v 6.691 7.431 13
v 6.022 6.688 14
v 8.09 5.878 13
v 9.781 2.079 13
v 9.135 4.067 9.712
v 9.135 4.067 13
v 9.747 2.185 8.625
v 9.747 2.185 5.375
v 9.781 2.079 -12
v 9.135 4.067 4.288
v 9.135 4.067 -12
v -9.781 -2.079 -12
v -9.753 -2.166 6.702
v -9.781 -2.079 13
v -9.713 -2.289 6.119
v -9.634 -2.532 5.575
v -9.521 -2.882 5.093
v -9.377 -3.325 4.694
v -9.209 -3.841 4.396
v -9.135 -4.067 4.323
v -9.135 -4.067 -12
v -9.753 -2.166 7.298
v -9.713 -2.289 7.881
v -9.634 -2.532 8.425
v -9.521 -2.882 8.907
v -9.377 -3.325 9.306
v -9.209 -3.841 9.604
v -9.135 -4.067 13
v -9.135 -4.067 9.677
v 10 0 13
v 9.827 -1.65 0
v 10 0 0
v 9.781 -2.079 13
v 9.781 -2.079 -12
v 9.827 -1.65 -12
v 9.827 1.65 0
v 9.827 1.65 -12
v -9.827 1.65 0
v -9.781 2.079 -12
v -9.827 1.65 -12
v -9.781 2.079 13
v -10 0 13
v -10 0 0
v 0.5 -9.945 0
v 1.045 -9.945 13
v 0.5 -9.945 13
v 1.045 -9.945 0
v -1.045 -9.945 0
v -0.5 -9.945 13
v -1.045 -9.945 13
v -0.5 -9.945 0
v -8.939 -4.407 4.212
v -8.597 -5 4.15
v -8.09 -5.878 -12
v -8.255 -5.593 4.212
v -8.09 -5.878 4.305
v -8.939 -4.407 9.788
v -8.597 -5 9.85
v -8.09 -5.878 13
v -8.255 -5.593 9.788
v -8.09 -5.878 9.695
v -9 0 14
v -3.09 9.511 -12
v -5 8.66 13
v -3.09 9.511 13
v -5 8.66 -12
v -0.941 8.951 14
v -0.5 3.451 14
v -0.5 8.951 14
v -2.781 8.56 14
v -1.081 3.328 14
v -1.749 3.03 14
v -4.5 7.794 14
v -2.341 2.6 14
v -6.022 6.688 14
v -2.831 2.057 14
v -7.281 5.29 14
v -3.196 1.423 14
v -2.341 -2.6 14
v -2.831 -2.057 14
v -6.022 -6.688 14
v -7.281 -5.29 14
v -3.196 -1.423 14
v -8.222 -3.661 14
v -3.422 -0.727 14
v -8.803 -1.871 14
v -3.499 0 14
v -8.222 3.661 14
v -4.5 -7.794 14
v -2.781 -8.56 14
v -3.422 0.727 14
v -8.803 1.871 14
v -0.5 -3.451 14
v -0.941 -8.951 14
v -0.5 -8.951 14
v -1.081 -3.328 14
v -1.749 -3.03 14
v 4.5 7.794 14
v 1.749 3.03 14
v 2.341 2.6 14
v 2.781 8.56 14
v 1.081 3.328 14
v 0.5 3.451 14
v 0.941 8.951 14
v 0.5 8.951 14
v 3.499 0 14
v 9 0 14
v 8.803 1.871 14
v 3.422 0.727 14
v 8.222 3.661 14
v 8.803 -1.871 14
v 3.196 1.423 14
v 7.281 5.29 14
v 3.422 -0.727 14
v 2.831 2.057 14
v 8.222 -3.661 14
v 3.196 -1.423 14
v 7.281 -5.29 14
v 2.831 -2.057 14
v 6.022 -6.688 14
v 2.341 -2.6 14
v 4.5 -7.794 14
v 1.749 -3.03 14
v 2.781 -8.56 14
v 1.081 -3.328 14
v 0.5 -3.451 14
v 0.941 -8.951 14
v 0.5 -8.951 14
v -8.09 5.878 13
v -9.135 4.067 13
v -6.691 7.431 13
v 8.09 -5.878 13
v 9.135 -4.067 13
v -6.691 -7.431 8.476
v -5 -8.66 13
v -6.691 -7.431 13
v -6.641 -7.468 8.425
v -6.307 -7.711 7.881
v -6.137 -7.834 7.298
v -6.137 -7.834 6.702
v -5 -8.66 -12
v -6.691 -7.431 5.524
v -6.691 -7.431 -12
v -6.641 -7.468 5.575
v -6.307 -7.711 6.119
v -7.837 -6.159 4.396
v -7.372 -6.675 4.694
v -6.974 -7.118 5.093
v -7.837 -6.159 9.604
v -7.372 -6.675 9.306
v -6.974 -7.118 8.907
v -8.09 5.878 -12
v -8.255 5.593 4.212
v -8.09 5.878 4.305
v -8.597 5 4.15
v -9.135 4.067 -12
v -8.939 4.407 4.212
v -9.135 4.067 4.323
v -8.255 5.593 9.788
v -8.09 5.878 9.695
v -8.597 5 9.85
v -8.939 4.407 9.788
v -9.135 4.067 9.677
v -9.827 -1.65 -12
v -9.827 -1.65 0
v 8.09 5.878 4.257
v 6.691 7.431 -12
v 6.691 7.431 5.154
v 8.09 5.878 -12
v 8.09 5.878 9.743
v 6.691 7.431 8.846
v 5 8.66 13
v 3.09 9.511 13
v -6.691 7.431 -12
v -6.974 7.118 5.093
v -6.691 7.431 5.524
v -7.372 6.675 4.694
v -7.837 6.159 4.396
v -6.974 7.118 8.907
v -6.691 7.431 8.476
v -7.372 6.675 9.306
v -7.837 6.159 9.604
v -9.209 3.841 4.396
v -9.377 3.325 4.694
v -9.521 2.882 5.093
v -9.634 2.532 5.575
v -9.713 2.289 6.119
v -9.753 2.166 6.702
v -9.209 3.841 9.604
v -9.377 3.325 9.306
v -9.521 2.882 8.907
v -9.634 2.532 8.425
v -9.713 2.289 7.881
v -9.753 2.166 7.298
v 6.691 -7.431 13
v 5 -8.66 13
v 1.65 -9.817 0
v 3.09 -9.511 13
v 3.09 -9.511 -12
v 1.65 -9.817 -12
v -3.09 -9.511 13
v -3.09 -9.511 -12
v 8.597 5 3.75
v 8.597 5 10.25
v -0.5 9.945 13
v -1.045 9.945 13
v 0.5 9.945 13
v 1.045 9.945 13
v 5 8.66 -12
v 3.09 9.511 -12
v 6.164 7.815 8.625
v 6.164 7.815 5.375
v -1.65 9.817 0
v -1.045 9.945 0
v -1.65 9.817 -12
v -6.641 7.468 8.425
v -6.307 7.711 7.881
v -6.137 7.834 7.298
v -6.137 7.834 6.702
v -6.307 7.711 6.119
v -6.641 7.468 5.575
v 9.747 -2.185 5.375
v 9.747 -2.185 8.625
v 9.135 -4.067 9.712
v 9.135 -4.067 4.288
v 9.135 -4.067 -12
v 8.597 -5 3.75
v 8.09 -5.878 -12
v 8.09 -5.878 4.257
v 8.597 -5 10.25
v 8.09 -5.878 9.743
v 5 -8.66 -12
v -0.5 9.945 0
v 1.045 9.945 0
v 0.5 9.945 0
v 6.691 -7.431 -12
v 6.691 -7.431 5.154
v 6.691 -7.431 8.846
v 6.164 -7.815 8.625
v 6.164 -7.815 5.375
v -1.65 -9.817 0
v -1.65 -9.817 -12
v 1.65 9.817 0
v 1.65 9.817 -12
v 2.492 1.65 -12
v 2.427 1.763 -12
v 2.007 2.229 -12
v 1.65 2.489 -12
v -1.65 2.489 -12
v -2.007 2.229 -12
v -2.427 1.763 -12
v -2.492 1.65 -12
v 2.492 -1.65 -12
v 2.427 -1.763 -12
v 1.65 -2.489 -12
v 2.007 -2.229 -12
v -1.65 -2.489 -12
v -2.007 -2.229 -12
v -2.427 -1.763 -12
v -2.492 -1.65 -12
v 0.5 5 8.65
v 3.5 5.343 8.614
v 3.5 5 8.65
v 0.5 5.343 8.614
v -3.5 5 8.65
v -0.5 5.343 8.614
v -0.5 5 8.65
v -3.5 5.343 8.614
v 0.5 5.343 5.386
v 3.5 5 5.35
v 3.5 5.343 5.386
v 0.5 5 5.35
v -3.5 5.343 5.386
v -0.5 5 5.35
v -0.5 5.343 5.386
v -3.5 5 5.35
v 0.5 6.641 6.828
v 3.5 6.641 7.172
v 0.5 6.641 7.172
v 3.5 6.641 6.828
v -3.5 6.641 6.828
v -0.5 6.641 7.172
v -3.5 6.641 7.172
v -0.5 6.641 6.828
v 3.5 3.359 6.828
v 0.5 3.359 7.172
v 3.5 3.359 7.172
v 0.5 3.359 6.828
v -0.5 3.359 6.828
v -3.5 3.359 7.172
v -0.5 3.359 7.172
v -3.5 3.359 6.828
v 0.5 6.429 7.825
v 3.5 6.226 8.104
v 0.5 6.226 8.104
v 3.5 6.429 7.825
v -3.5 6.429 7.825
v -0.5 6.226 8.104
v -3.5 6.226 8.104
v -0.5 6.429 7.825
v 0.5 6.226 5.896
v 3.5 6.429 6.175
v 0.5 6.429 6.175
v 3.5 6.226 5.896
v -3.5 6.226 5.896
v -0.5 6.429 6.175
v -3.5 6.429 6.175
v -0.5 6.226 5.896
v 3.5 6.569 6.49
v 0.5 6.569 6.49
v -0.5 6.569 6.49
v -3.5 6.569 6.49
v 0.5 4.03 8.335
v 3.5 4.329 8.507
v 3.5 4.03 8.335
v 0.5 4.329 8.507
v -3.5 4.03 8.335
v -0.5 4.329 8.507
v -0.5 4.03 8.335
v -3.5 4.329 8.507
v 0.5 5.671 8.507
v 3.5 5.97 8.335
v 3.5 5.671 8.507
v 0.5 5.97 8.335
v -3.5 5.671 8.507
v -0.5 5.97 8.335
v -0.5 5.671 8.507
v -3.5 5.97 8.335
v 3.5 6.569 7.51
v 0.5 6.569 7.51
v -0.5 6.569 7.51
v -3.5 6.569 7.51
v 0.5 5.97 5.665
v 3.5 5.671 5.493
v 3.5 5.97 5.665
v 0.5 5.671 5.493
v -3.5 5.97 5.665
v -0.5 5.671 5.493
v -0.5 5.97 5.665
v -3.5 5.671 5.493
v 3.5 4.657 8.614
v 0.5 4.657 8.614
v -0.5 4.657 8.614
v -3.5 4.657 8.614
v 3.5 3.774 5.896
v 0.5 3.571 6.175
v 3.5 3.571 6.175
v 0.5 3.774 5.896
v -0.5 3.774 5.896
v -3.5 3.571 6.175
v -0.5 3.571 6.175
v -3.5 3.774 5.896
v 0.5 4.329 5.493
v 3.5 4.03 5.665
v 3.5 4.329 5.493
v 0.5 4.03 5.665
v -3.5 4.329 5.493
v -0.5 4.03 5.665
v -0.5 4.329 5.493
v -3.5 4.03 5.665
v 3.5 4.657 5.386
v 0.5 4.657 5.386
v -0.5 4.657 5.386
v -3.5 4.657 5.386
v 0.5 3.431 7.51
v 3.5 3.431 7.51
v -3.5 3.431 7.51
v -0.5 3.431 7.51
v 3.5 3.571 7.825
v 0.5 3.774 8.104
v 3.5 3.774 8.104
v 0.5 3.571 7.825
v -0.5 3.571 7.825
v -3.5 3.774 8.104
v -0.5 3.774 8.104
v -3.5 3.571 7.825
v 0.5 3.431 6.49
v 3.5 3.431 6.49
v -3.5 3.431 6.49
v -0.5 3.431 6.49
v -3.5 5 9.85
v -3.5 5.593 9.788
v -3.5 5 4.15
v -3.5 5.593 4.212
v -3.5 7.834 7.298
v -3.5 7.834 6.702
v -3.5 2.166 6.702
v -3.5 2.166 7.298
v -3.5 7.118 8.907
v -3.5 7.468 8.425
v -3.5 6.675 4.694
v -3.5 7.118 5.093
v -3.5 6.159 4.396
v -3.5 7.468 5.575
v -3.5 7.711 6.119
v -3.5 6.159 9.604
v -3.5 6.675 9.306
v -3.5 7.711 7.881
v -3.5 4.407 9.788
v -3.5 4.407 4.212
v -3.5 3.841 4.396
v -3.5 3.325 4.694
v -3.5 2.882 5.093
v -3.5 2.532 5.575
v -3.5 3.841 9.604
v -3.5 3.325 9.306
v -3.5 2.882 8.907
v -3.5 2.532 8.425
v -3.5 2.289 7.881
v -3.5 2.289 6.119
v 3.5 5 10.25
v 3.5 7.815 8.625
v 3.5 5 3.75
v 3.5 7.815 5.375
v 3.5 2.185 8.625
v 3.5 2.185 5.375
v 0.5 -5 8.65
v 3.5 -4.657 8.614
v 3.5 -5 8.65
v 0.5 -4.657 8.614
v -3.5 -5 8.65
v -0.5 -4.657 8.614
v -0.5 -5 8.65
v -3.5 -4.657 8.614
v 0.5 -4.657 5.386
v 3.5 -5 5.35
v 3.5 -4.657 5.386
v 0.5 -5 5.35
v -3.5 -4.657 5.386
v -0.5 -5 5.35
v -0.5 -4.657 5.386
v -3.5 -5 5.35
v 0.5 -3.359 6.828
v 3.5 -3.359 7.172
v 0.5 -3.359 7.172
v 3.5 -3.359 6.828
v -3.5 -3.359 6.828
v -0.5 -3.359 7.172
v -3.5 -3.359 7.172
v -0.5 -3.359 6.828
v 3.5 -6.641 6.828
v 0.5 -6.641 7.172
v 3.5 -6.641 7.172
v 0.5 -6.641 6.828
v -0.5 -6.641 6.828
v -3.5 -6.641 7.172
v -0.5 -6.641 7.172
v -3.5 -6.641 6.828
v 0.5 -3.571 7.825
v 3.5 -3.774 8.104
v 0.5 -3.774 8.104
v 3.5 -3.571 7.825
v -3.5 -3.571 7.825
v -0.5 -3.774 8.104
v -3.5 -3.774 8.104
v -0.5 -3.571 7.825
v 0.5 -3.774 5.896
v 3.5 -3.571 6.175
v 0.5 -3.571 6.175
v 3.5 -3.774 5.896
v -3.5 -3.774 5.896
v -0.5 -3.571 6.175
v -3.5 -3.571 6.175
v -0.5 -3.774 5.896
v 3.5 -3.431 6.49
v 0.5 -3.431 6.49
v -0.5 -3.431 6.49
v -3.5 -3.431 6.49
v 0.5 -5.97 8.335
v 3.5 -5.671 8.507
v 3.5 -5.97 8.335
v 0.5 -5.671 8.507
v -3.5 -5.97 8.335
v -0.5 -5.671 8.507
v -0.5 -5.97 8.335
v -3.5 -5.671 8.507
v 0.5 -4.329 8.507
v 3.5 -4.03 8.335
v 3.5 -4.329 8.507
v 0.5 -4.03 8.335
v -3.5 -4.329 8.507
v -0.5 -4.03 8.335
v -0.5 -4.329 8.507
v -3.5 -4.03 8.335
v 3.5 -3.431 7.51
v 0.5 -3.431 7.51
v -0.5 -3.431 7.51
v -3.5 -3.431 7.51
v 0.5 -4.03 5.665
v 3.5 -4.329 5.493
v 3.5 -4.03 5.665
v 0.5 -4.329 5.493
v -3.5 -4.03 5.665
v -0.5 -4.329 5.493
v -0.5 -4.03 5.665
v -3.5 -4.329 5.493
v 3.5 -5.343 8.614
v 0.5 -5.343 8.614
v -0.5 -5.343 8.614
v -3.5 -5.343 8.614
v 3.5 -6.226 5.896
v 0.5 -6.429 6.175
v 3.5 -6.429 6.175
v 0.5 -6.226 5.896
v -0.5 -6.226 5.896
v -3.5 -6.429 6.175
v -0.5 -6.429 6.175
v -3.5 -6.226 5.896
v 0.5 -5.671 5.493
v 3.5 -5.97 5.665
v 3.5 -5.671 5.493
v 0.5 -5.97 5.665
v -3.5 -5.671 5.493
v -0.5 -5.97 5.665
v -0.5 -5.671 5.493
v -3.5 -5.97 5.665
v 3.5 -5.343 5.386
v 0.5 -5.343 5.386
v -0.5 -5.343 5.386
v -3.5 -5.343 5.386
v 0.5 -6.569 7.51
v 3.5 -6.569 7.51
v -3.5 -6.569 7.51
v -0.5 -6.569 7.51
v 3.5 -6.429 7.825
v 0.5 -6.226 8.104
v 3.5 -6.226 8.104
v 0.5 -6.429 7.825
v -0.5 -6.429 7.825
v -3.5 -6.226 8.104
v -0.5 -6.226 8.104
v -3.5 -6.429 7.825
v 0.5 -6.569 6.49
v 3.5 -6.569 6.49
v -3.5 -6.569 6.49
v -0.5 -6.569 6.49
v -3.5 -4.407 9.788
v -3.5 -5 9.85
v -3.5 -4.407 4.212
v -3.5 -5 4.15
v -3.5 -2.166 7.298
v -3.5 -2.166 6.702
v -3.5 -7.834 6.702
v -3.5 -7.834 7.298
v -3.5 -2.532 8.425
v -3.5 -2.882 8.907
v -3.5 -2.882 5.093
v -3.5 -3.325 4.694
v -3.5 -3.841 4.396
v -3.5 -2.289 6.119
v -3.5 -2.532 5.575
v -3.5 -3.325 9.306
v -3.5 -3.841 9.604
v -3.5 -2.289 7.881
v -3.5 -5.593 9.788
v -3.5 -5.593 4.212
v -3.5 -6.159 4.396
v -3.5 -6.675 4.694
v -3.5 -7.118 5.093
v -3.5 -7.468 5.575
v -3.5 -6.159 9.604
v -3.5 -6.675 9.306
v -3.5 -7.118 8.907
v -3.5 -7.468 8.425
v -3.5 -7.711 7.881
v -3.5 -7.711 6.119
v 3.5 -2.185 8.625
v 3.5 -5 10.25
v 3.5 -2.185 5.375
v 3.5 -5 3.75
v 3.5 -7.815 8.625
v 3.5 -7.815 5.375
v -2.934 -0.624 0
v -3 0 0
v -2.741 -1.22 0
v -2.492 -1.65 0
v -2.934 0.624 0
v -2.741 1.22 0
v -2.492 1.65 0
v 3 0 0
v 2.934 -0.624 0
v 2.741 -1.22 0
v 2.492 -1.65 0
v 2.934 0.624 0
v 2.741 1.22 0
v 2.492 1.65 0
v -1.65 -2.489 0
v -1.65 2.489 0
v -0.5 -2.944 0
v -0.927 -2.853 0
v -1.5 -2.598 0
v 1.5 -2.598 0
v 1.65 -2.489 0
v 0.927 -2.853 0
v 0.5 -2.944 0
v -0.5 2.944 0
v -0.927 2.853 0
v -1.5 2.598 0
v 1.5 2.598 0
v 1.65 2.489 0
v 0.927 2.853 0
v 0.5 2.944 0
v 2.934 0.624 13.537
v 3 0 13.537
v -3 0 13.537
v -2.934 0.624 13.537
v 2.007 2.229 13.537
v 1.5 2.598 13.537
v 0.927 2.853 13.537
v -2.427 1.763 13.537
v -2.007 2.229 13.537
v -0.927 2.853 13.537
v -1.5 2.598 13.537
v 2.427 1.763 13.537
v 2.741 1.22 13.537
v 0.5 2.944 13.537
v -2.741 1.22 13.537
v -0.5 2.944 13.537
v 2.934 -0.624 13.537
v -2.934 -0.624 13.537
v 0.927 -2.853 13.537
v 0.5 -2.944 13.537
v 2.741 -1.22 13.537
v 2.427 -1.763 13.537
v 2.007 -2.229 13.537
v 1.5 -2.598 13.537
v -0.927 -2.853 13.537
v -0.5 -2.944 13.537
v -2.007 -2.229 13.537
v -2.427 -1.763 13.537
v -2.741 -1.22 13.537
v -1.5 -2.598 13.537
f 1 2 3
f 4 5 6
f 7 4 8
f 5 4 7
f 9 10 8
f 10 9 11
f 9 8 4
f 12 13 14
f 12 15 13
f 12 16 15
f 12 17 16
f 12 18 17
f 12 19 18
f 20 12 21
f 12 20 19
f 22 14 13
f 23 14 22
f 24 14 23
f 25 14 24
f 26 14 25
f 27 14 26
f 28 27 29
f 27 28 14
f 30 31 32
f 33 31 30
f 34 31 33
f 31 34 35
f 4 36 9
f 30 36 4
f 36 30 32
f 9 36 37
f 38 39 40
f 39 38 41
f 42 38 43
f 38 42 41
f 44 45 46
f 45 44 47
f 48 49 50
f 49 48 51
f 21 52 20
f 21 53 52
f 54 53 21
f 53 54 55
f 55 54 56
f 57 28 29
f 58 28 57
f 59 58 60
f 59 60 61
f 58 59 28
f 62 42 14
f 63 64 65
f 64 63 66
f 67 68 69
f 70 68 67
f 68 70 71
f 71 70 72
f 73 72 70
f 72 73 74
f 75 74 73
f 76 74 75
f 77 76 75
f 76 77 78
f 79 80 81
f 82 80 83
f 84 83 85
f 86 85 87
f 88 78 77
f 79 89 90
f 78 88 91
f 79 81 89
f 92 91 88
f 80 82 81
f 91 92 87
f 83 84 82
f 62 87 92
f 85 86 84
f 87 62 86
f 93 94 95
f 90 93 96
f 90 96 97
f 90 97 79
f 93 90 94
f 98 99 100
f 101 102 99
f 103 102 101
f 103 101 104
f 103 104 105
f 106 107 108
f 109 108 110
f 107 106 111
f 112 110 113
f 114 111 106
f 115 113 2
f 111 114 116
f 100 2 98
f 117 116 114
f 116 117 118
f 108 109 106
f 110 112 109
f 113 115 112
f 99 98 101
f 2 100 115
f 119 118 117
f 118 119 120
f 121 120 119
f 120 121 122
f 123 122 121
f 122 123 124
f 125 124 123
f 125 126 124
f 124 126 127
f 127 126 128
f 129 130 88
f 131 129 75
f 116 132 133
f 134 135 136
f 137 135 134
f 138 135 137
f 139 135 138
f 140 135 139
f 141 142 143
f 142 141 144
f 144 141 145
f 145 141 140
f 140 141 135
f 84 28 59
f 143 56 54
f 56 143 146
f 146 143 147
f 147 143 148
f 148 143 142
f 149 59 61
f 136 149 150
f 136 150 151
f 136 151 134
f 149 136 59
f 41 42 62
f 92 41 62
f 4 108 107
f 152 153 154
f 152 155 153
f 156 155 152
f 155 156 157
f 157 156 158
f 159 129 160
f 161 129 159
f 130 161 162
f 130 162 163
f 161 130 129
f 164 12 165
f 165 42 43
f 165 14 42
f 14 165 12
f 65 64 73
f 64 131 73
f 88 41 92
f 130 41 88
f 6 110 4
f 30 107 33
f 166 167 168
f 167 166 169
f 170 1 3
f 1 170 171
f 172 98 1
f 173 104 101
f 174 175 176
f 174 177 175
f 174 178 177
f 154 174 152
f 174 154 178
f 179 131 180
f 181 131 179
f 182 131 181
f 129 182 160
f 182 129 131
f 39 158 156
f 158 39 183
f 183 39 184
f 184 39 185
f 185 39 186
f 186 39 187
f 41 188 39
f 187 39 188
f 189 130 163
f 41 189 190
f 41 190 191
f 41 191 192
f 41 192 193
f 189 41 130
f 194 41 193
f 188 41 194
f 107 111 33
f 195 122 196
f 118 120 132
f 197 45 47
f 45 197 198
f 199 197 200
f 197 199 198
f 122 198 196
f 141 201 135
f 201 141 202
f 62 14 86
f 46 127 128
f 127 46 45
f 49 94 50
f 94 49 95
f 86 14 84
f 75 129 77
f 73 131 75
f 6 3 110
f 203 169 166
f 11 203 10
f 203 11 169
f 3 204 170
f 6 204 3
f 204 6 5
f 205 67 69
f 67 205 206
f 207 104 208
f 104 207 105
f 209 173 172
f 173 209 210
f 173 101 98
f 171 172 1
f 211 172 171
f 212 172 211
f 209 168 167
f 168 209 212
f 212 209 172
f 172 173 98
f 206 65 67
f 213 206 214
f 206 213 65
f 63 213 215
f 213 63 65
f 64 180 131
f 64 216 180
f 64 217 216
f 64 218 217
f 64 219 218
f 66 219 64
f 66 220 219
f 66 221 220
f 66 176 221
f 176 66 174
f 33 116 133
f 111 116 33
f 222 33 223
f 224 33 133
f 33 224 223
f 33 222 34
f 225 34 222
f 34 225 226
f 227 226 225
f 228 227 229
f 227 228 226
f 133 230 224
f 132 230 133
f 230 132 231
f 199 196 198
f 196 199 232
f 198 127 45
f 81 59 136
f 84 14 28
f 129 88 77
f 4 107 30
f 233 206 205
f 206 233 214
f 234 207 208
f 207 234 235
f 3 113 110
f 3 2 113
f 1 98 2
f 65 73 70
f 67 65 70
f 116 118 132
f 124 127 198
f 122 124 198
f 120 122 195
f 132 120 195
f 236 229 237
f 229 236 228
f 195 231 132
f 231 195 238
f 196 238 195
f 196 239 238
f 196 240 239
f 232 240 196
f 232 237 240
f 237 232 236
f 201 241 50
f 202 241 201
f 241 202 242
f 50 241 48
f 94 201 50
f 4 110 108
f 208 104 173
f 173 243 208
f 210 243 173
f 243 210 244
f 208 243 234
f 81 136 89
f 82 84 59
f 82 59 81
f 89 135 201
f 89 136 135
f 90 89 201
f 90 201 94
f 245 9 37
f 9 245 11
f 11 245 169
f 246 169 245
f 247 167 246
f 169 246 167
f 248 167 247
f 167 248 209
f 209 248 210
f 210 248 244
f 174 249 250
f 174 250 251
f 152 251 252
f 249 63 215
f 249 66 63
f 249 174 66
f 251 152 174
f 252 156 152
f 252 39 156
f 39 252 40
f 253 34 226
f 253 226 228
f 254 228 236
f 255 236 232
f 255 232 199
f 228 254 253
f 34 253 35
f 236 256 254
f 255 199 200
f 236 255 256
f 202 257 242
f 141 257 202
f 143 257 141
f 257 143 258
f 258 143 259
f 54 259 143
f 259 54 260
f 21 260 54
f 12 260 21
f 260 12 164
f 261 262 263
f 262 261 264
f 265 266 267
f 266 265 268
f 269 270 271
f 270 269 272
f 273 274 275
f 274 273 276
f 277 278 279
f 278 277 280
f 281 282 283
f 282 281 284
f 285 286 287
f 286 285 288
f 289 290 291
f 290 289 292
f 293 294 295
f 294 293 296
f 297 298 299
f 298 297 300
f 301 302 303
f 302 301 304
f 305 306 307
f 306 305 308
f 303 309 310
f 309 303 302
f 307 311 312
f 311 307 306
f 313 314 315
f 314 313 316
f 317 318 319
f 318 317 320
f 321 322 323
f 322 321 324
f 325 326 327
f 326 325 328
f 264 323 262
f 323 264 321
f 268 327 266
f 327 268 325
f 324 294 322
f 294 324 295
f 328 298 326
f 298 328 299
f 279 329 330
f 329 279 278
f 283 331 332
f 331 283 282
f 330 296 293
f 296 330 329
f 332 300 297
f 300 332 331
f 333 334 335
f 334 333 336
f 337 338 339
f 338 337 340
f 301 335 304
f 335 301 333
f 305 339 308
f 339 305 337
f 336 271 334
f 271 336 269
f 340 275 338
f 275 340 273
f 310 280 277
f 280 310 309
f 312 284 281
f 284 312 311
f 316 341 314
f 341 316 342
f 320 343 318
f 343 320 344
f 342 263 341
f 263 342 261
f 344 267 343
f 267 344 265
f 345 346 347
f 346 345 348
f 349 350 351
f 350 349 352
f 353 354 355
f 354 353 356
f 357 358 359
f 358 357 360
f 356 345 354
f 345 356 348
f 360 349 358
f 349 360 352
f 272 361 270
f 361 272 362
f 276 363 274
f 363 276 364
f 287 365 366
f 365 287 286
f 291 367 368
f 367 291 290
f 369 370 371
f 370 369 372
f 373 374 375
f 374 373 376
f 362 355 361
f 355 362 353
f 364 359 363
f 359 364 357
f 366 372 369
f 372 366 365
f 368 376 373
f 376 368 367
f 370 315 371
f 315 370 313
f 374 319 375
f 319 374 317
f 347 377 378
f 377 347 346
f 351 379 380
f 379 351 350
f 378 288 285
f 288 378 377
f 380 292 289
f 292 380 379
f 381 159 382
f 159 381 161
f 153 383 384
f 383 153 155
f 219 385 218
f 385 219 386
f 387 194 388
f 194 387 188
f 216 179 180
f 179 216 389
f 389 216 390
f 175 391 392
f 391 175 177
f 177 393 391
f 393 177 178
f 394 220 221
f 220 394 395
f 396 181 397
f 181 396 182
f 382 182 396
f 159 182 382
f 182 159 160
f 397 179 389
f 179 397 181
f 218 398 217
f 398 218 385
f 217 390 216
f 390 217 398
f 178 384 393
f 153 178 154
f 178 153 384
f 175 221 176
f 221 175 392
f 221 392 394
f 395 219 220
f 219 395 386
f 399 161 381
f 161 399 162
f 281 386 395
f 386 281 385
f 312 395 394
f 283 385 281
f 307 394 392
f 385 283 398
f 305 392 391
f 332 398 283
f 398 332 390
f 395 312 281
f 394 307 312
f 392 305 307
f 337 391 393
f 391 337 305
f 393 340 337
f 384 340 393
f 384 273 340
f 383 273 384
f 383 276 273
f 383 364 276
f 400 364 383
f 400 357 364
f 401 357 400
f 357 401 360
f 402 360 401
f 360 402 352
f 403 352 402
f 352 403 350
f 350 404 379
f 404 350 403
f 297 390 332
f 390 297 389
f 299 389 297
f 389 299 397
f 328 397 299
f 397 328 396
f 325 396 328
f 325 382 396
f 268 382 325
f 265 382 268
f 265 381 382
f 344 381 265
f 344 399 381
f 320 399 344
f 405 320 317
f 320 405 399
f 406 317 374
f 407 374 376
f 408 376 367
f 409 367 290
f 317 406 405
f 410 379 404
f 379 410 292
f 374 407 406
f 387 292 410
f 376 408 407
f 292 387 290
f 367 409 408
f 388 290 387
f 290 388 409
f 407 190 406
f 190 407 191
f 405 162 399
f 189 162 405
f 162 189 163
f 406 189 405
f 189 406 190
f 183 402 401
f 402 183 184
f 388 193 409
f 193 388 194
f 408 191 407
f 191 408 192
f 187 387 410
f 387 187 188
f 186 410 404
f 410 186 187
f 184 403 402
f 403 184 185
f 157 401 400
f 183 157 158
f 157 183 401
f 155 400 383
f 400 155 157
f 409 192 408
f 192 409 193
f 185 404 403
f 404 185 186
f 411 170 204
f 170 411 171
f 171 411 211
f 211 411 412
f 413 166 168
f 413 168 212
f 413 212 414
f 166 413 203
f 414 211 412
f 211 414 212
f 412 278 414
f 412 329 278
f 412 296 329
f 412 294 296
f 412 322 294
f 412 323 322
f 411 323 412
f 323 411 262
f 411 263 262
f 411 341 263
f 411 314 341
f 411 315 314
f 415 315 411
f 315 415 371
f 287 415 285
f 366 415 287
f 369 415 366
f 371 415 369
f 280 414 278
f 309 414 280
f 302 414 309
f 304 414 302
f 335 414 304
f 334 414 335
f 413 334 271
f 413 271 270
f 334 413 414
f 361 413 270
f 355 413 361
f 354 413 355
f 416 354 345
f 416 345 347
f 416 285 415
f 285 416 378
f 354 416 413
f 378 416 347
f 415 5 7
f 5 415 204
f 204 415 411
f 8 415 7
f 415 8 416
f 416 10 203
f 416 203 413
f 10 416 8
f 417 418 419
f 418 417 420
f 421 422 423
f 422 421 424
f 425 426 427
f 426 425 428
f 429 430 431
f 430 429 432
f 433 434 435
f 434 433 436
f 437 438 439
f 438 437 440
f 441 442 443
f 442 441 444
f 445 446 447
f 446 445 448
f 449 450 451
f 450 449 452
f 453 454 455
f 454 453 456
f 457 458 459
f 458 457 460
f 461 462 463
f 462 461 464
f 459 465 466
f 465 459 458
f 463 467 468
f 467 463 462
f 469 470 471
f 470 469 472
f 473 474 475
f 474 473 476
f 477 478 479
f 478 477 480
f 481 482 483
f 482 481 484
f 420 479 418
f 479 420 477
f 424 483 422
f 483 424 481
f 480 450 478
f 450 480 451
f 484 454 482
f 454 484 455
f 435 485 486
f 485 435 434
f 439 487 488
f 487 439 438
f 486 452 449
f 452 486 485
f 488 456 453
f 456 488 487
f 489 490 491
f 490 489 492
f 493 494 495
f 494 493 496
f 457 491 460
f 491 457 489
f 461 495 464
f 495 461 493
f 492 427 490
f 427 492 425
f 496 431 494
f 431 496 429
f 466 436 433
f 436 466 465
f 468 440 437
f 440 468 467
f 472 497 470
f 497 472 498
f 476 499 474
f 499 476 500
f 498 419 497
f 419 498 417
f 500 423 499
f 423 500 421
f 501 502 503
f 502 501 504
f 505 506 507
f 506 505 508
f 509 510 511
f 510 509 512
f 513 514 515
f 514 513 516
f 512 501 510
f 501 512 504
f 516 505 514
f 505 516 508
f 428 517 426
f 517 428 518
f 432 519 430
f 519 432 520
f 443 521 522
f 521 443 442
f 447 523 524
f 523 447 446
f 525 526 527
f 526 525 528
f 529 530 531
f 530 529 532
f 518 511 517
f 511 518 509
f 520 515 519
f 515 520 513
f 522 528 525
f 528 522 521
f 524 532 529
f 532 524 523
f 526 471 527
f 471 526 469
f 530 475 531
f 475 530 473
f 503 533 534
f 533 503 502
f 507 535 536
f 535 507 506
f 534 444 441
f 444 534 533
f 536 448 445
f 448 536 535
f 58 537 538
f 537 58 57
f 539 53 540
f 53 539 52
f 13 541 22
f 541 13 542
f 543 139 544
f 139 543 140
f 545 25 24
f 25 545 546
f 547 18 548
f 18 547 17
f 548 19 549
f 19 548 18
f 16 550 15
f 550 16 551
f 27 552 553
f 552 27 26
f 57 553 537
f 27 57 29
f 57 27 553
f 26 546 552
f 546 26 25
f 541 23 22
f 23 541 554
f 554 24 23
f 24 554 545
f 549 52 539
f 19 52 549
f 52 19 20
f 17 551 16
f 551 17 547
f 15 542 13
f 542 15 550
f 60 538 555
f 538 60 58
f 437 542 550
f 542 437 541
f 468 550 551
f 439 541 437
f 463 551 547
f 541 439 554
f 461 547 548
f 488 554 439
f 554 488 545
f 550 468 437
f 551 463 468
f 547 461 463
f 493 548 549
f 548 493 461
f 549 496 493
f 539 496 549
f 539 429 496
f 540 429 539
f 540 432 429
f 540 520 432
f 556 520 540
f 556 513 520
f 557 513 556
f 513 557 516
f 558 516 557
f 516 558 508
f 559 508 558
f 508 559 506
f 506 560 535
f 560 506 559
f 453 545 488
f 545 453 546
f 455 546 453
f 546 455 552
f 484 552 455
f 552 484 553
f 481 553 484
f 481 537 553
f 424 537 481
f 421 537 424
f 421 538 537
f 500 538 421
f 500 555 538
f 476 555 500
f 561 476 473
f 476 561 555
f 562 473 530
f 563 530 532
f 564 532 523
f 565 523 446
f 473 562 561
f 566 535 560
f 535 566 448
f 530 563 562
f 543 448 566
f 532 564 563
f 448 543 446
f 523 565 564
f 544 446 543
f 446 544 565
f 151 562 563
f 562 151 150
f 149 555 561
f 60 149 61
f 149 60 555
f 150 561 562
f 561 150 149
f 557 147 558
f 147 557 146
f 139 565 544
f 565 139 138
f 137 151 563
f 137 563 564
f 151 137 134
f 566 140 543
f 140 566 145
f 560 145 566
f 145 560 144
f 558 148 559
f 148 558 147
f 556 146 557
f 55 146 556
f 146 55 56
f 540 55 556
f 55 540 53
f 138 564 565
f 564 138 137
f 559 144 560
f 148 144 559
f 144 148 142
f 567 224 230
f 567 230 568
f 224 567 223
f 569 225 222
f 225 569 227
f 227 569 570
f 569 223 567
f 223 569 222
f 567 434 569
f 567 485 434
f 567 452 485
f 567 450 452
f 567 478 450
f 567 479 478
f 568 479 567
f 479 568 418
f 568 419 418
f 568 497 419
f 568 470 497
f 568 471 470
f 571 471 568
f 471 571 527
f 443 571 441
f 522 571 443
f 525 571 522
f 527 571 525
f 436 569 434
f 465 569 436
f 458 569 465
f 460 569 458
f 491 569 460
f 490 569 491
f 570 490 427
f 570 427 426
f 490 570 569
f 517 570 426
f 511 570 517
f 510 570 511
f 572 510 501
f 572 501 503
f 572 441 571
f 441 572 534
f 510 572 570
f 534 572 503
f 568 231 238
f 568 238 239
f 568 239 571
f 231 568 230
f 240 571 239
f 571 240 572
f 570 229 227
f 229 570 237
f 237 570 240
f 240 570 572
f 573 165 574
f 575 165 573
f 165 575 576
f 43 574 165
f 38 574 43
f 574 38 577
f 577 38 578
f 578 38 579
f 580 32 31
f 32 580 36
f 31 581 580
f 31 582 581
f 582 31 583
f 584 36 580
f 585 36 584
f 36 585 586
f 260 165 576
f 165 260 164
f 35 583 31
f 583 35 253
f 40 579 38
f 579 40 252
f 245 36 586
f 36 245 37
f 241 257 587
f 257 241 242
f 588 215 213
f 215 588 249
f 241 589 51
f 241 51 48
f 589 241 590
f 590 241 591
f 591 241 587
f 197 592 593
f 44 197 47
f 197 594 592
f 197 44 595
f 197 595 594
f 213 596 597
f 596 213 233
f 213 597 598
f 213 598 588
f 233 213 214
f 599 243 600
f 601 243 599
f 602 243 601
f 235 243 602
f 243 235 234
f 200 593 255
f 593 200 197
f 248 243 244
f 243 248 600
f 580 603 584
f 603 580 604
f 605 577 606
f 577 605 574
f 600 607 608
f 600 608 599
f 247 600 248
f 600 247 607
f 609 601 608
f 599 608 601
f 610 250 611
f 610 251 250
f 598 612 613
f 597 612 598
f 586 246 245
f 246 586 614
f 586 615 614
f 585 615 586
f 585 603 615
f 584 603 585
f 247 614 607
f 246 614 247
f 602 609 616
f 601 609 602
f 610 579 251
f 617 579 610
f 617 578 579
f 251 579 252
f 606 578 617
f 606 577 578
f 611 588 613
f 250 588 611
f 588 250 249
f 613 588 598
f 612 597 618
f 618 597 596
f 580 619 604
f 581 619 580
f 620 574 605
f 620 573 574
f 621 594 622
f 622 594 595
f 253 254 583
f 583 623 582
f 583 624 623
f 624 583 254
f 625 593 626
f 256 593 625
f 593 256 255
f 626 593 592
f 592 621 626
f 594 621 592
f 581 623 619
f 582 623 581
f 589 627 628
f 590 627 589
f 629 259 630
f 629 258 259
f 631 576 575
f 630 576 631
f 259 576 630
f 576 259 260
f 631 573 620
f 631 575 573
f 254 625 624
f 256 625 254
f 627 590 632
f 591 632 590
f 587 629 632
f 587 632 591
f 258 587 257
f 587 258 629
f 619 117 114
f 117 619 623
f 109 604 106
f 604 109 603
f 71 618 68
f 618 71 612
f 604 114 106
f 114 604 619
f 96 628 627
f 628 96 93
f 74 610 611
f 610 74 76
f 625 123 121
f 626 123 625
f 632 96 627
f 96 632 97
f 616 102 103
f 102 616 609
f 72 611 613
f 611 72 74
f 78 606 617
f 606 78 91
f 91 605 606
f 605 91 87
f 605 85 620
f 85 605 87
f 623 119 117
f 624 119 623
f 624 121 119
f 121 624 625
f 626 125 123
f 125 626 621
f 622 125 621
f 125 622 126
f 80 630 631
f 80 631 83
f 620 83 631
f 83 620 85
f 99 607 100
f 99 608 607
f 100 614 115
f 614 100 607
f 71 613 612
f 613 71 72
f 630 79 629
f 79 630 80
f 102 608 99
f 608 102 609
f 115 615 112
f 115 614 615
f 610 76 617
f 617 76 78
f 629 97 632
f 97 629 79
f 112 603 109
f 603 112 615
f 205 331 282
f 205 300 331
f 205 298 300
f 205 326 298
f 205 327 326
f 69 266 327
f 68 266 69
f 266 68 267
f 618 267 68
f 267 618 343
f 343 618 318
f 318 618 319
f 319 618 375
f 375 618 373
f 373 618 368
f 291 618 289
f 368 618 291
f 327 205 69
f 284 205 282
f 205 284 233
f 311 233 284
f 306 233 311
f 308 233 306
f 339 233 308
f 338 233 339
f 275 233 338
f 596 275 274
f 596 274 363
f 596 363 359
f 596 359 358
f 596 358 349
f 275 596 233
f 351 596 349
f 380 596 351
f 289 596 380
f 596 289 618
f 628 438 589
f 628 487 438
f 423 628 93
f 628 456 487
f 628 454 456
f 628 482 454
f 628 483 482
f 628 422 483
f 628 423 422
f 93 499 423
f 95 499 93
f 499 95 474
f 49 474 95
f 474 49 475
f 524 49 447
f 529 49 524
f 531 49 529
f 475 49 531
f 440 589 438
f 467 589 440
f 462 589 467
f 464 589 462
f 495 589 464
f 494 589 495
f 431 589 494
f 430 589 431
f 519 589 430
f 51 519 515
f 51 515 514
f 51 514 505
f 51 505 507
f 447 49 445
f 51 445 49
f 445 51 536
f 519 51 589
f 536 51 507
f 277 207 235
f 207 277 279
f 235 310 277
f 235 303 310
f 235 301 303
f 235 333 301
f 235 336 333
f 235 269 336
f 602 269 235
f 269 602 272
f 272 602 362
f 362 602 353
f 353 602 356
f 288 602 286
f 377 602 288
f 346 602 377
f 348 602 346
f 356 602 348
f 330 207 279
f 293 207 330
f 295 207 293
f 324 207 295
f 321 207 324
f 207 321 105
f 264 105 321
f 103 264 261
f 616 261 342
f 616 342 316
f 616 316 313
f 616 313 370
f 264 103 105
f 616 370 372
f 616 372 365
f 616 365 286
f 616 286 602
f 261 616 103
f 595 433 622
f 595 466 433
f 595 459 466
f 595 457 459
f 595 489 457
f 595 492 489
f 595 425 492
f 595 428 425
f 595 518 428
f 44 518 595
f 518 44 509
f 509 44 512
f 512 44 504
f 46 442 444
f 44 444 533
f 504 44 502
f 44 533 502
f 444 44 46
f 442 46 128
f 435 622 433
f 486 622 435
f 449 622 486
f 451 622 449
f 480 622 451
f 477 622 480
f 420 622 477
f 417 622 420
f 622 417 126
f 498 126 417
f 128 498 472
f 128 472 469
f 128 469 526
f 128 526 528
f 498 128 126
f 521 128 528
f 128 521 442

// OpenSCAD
$fn=30;

// --- Motor end
// Inner diameter.
id1 = 20; 
// Length of hole for shaft 1.
h1 = 14;

// --- M4 threaded shart end
// Inner diameter of hole for shaft 2. This one fits the 
// M4 threded shaft.
id2 = 6;  
// Length of hole for shaft 2.

// --- Body Cylinder
od = 20;
body_offset_from_center = 0;
// Width of the slot along the coupler.
slot_angle = 12;
// Total coupler length;
total_height = h1;

// --- Clamping screws
// Diameter of the screw holes.
screw_hole_diameter = 3.3;
// Diamter of the inset for the screws head.
screw_head_diameter = 5.7;
// Diamter of the inset for the screws nuts.
screw_nut_diameter = 6.5;
// Distance between screw head and nut.
screw_head_to_nut = 7;
// Offset of the screws' centers from the coupler's center.
hole_offset_from_center = 5;
// Offset of the screws' centers from the coupler ends.
hole_offset_from_end = 7;

// Other
shaft_chamfer = 0.5;
body_chamfer = 1;

// Small measures, use to menatain manifold.
eps1 = 0.001;

// Chamfers for the top and bottom shaft holes.
module shafts_chamfers() {
  translate([0, 0, total_height-(id2+shaft_chamfer)/2+eps1]) 
      cylinder(d1=eps1, d2=id2+2*shaft_chamfer, h=(id2+shaft_chamfer)/2);
}

// The blank cylinder of the boddy. Includes top and bottom chamfers.
module body() {
  hull() {
    cylinder(d1=od, d2=od, h=body_chamfer);
    translate([0, 0, total_height-body_chamfer]) cylinder(d1=od, d2=od-2*body_chamfer, h=body_chamfer);
  }
}

// Cut for one screw, with its nut.
module screw(h) {
  translate([0, hole_offset_from_center, h])
  rotate([0, -90, 0])
  union() {
    translate([0, 0, -od/2]) cylinder(d=screw_hole_diameter, h=od); 
    translate([0, 0, screw_head_to_nut/2]) cylinder(d=screw_head_diameter, h=od/2);
    translate([0, 0, -(od + screw_head_to_nut)/2]) cylinder($fn=6, d=screw_nut_diameter, h=od/2);
  }
}

// The clamping wedge slot.
module slot() {
  intersection() {
    translate([0, -((od/2)-body_offset_from_center), -total_height-1]) 
    hull() {
      rotate([0, 0, slot_angle/2]) cube([eps1, 2*od, total_height*2+2]);
      rotate([0, 0, -slot_angle/2]) cube([eps1, 2*od, total_height*2+2]);
    }
    translate([-od/2, 0, -total_height-1]) cube([od, od, total_height*2+2]);
  }
}

// The entire coupler.
module coupler() {
  difference() {
    h = 12;
    union() {
      translate([0, body_offset_from_center, 0]) body();
      translate([0, body_offset_from_center, -h]) cylinder(d=od, h=h);
    }
    translate([0, 0, -total_height-eps1]) cylinder(d=id2, h=total_height*2+eps1); 
    screw(total_height - hole_offset_from_end);
    translate([0, -hole_offset_from_center*2, 0]) screw(total_height - hole_offset_from_end);
    // slot();
    shafts_chamfers();

    translate([0, 0, -h/2]) {
      cube([100,screw_hole_diameter,h+eps1], center=true);
      cube([screw_hole_diameter,100,h], center=true);
    }

    cube([1,100,100], center=true);
  }

}

coupler();
